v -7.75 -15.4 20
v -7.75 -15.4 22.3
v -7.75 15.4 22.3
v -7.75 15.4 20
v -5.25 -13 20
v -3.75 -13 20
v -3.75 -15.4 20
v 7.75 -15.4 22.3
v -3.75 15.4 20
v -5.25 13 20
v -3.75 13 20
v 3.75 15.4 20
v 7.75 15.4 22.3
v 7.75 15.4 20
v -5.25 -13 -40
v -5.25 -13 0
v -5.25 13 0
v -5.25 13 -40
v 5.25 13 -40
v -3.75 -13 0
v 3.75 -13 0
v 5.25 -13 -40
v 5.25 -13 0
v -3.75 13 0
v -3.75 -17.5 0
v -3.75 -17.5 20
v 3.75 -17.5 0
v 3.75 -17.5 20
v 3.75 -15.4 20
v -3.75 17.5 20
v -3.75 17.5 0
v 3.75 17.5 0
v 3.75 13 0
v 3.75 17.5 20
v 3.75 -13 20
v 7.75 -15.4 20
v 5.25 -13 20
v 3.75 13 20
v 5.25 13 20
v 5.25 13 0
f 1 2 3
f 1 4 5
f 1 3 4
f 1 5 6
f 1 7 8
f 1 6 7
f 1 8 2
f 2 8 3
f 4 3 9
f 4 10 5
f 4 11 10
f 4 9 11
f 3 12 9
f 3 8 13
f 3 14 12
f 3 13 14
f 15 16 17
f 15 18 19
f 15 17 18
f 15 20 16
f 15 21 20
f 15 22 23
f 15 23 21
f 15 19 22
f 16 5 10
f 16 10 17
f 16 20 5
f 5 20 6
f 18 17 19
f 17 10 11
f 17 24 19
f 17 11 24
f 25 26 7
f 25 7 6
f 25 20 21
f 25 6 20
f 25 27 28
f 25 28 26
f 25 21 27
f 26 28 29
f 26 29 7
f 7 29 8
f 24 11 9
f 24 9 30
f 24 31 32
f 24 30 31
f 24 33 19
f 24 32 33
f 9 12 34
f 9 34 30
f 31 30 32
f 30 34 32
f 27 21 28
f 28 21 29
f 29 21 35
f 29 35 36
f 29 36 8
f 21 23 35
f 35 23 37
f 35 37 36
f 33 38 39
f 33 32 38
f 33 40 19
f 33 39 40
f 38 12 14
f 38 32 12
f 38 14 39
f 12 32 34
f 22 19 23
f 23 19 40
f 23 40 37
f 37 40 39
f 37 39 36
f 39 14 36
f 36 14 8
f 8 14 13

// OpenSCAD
// Start: lazy_union
default_5_default_5();
// End: lazy_union

// Modules.

// 'PartMaterial undef-default - default 5.0'
module default_5_default_5() {
  // 'None : _combine_solids_and_holes'
  union() {
    // 'default : _combine_solids_and_holes'
    union() {
      // 'case'
      multmatrix(m=[[1.0, 0.0, 0.0, -5.25], [0.0, 0.0, 1.0, -13.0], [-0.0, -1.0, -0.0, 20.0], [0.0, 0.0, 0.0, 1.0]]) {
        // 'case : _combine_solids_and_holes'
        union() {
          // 'case'
          cube(size=[10.5, 20.0, 26.0]);
        }
      }
      // 'lip'
      multmatrix(m=[[1.0, 0.0, 0.0, -7.75], [0.0, 0.0, 1.0, -15.4], [0.0, -1.0, 0.0, 22.3], [0.0, 0.0, 0.0, 1.0]]) {
        // 'lip : _combine_solids_and_holes'
        union() {
          // 'lip'
          cube(size=[15.5, 2.3, 30.8]);
        }
      }
      // 'terminal_cavity'
      multmatrix(m=[[1.0, 0.0, 0.0, -5.25], [0.0, 0.0, 1.0, -13.0], [0.0, -1.0, 0.0, 0.0], [0.0, 0.0, 0.0, 1.0]]) {
        // 'terminal_cavity'
        color(c=[0.0, 0.0, 1.0, 0.5]) {
          // 'terminal_cavity : _combine_solids_and_holes'
          union() {
            // 'terminal_cavity'
            cube(size=[10.5, 40.0, 26.0]);
          }
        }
      }
      // ('wing', 'top')
      multmatrix(m=[[1.0, 0.0, 0.0, -3.75], [0.0, 0.0, -1.0, 17.5], [0.0, 1.0, 0.0, 0.0], [0.0, 0.0, 0.0, 1.0]]) {
        // ('wing', 'top')
        color(c=[0.0, 0.5019607843137255, 0.0, 1.0]) {
          // "('wing', 'top') : _combine_solids_and_holes"
          union() {
            // ('wing', 'top')
            cube(size=[7.5, 20.0, 4.5]);
          }
        }
      }
      // ('wing', 'base')
      multmatrix(m=[[1.0, 0.0, 0.0, -3.75], [0.0, 0.0, -1.0, -13.0], [0.0, 1.0, 0.0, 0.0], [0.0, 0.0, 0.0, 1.0]]) {
        // ('wing', 'base')
        color(c=[0.0, 0.5019607843137255, 0.0, 1.0]) {
          // "('wing', 'base') : _combine_solids_and_holes"
          union() {
            // ('wing', 'base')
            cube(size=[7.5, 20.0, 4.5]);
          }
        }
      }
    }
  }
} // end module default_5_default_5
